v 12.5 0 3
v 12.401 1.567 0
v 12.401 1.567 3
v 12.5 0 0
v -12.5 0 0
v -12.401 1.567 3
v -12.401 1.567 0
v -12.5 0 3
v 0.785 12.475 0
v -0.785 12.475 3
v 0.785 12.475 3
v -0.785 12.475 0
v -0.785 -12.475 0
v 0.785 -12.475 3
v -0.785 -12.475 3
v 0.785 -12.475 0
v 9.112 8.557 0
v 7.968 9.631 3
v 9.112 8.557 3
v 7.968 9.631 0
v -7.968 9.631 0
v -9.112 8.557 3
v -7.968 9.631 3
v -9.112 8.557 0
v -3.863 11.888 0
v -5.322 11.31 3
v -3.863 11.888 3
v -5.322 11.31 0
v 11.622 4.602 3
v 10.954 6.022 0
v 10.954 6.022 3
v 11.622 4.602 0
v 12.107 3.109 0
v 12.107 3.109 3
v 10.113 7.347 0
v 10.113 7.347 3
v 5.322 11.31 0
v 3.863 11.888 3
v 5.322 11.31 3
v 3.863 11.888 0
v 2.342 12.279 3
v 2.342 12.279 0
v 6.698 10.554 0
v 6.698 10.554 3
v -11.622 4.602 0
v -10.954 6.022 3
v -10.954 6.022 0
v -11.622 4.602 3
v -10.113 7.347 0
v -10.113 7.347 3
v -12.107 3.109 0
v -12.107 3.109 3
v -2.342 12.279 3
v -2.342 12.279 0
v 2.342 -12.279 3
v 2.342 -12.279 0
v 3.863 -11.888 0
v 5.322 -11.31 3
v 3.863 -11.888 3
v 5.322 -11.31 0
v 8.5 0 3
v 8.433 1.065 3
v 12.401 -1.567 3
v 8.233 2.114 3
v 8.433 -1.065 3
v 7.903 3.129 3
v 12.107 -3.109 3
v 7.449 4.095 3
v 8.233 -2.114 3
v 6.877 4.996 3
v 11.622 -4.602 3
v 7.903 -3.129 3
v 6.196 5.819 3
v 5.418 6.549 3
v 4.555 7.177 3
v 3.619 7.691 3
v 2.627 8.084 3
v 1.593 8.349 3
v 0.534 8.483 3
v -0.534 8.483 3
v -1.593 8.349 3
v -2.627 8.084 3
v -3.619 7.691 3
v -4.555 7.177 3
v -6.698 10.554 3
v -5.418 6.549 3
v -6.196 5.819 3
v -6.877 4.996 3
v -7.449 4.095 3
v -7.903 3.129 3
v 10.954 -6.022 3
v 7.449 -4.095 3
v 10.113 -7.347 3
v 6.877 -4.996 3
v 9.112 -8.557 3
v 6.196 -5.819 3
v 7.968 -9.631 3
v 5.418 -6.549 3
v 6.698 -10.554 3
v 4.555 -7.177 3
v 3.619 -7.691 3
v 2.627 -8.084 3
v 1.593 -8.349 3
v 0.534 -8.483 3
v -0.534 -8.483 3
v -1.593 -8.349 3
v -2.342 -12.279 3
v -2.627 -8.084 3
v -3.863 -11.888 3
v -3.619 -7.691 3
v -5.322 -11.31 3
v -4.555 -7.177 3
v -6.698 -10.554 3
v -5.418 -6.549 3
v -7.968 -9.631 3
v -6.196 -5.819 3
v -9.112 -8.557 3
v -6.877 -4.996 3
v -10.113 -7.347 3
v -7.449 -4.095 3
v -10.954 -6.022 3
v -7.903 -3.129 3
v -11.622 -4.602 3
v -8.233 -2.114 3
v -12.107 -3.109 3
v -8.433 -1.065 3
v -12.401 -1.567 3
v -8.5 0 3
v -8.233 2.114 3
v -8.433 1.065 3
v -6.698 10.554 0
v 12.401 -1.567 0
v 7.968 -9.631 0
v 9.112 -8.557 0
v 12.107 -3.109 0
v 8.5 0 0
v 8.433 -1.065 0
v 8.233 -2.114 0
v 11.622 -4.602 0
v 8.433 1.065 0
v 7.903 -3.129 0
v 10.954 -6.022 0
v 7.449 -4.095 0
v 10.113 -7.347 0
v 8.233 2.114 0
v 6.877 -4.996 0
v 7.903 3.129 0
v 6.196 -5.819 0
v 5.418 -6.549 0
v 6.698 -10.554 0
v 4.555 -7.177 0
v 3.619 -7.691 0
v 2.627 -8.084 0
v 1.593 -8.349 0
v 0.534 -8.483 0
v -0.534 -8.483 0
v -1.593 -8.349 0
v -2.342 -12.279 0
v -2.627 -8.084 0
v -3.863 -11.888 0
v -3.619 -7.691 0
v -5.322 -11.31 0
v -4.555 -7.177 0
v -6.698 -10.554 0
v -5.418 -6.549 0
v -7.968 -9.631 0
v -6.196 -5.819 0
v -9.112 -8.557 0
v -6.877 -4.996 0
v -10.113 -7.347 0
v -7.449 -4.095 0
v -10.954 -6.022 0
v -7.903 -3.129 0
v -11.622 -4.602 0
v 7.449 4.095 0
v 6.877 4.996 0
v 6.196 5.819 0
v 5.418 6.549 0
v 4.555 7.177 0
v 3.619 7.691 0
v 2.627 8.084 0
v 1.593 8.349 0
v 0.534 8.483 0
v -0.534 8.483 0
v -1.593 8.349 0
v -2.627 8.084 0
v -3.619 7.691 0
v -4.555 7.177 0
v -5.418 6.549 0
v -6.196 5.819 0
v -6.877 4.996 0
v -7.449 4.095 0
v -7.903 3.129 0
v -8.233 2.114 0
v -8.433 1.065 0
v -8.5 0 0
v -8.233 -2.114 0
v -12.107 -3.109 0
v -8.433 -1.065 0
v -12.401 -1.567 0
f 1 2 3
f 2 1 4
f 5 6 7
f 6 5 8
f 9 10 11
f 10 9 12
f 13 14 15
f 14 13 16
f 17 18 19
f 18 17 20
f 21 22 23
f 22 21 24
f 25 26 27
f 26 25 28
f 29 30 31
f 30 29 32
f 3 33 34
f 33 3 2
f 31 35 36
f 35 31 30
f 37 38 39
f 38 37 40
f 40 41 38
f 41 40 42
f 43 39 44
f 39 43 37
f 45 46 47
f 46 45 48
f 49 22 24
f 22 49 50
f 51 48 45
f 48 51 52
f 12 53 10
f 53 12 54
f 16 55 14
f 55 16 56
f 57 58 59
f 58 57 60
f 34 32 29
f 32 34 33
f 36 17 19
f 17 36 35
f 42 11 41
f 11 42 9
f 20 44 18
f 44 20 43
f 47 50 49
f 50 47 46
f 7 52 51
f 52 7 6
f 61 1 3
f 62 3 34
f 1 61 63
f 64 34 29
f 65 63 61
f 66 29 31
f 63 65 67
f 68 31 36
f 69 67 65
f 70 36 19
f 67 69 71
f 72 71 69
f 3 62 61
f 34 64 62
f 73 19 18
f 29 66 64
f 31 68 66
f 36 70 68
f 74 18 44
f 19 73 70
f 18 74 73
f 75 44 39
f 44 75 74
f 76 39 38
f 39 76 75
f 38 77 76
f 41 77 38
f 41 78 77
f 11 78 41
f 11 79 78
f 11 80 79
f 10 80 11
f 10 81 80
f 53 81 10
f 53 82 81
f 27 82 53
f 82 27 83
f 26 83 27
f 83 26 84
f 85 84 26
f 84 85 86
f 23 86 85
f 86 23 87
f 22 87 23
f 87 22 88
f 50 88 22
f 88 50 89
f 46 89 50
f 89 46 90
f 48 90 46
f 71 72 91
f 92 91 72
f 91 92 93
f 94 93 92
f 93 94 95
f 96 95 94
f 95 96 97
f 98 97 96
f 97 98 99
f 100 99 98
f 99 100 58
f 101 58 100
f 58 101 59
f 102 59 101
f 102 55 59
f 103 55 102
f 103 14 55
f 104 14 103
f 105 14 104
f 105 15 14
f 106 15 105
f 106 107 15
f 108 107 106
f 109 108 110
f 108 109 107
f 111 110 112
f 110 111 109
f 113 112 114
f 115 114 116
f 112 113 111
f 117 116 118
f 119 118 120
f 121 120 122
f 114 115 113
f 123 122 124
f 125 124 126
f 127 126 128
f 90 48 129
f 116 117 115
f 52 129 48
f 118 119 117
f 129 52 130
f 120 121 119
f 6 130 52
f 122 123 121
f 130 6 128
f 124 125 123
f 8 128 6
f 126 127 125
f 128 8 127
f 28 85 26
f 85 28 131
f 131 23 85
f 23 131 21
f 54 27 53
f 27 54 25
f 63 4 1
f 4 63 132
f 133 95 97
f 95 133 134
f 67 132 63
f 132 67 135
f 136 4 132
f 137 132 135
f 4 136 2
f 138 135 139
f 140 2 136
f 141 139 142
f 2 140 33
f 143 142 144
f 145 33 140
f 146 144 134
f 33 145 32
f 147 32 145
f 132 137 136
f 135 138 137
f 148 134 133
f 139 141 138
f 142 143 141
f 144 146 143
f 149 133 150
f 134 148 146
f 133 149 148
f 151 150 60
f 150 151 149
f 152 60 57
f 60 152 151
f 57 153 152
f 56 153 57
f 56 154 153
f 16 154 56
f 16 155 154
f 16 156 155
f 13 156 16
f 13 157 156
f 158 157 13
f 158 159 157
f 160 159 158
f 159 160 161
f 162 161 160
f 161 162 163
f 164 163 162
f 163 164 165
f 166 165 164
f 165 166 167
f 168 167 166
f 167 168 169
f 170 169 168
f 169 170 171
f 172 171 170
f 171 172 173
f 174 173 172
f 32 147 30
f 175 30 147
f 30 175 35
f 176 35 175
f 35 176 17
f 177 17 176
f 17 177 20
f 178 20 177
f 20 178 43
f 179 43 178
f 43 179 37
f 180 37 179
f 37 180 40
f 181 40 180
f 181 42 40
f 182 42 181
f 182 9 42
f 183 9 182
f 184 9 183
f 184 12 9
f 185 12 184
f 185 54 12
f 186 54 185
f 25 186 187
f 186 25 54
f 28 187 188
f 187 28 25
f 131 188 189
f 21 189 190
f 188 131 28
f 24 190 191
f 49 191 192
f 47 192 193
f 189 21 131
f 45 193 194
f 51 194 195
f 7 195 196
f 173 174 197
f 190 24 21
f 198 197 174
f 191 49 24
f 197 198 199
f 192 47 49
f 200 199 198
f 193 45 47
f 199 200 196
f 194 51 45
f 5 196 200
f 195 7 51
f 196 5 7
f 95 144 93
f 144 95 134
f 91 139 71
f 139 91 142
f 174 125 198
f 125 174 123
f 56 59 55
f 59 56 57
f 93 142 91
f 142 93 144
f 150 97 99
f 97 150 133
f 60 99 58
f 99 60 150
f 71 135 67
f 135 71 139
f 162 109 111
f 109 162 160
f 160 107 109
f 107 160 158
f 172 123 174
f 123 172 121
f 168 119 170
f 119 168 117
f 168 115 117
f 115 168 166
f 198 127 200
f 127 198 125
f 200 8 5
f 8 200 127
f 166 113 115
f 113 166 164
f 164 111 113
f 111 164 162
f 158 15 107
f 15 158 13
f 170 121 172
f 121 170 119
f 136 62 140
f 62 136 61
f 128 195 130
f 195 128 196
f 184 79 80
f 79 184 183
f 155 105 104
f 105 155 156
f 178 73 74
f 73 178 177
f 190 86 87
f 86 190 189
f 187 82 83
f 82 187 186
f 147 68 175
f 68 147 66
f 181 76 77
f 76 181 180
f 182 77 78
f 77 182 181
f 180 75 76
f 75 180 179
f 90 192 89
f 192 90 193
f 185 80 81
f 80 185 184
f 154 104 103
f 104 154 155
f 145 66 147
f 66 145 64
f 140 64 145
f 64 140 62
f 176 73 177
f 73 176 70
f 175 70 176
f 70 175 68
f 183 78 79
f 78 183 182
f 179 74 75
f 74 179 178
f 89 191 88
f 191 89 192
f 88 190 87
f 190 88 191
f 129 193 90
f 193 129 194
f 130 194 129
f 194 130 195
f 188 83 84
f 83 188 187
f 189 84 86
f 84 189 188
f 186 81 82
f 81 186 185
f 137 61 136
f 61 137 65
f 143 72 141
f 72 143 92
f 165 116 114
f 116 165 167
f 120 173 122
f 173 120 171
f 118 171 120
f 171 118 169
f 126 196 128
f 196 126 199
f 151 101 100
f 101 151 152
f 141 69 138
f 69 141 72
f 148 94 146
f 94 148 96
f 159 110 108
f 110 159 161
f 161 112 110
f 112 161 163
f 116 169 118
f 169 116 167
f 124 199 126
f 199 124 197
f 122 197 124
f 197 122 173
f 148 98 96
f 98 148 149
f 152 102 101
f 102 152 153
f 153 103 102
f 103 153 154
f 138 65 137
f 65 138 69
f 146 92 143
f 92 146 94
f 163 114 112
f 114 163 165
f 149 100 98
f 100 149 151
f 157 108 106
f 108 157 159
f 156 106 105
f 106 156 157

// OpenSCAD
$fn=50;

difference(){
    cylinder(3,25/2,25/2);
    cylinder(3,17/2,17/2);
}
